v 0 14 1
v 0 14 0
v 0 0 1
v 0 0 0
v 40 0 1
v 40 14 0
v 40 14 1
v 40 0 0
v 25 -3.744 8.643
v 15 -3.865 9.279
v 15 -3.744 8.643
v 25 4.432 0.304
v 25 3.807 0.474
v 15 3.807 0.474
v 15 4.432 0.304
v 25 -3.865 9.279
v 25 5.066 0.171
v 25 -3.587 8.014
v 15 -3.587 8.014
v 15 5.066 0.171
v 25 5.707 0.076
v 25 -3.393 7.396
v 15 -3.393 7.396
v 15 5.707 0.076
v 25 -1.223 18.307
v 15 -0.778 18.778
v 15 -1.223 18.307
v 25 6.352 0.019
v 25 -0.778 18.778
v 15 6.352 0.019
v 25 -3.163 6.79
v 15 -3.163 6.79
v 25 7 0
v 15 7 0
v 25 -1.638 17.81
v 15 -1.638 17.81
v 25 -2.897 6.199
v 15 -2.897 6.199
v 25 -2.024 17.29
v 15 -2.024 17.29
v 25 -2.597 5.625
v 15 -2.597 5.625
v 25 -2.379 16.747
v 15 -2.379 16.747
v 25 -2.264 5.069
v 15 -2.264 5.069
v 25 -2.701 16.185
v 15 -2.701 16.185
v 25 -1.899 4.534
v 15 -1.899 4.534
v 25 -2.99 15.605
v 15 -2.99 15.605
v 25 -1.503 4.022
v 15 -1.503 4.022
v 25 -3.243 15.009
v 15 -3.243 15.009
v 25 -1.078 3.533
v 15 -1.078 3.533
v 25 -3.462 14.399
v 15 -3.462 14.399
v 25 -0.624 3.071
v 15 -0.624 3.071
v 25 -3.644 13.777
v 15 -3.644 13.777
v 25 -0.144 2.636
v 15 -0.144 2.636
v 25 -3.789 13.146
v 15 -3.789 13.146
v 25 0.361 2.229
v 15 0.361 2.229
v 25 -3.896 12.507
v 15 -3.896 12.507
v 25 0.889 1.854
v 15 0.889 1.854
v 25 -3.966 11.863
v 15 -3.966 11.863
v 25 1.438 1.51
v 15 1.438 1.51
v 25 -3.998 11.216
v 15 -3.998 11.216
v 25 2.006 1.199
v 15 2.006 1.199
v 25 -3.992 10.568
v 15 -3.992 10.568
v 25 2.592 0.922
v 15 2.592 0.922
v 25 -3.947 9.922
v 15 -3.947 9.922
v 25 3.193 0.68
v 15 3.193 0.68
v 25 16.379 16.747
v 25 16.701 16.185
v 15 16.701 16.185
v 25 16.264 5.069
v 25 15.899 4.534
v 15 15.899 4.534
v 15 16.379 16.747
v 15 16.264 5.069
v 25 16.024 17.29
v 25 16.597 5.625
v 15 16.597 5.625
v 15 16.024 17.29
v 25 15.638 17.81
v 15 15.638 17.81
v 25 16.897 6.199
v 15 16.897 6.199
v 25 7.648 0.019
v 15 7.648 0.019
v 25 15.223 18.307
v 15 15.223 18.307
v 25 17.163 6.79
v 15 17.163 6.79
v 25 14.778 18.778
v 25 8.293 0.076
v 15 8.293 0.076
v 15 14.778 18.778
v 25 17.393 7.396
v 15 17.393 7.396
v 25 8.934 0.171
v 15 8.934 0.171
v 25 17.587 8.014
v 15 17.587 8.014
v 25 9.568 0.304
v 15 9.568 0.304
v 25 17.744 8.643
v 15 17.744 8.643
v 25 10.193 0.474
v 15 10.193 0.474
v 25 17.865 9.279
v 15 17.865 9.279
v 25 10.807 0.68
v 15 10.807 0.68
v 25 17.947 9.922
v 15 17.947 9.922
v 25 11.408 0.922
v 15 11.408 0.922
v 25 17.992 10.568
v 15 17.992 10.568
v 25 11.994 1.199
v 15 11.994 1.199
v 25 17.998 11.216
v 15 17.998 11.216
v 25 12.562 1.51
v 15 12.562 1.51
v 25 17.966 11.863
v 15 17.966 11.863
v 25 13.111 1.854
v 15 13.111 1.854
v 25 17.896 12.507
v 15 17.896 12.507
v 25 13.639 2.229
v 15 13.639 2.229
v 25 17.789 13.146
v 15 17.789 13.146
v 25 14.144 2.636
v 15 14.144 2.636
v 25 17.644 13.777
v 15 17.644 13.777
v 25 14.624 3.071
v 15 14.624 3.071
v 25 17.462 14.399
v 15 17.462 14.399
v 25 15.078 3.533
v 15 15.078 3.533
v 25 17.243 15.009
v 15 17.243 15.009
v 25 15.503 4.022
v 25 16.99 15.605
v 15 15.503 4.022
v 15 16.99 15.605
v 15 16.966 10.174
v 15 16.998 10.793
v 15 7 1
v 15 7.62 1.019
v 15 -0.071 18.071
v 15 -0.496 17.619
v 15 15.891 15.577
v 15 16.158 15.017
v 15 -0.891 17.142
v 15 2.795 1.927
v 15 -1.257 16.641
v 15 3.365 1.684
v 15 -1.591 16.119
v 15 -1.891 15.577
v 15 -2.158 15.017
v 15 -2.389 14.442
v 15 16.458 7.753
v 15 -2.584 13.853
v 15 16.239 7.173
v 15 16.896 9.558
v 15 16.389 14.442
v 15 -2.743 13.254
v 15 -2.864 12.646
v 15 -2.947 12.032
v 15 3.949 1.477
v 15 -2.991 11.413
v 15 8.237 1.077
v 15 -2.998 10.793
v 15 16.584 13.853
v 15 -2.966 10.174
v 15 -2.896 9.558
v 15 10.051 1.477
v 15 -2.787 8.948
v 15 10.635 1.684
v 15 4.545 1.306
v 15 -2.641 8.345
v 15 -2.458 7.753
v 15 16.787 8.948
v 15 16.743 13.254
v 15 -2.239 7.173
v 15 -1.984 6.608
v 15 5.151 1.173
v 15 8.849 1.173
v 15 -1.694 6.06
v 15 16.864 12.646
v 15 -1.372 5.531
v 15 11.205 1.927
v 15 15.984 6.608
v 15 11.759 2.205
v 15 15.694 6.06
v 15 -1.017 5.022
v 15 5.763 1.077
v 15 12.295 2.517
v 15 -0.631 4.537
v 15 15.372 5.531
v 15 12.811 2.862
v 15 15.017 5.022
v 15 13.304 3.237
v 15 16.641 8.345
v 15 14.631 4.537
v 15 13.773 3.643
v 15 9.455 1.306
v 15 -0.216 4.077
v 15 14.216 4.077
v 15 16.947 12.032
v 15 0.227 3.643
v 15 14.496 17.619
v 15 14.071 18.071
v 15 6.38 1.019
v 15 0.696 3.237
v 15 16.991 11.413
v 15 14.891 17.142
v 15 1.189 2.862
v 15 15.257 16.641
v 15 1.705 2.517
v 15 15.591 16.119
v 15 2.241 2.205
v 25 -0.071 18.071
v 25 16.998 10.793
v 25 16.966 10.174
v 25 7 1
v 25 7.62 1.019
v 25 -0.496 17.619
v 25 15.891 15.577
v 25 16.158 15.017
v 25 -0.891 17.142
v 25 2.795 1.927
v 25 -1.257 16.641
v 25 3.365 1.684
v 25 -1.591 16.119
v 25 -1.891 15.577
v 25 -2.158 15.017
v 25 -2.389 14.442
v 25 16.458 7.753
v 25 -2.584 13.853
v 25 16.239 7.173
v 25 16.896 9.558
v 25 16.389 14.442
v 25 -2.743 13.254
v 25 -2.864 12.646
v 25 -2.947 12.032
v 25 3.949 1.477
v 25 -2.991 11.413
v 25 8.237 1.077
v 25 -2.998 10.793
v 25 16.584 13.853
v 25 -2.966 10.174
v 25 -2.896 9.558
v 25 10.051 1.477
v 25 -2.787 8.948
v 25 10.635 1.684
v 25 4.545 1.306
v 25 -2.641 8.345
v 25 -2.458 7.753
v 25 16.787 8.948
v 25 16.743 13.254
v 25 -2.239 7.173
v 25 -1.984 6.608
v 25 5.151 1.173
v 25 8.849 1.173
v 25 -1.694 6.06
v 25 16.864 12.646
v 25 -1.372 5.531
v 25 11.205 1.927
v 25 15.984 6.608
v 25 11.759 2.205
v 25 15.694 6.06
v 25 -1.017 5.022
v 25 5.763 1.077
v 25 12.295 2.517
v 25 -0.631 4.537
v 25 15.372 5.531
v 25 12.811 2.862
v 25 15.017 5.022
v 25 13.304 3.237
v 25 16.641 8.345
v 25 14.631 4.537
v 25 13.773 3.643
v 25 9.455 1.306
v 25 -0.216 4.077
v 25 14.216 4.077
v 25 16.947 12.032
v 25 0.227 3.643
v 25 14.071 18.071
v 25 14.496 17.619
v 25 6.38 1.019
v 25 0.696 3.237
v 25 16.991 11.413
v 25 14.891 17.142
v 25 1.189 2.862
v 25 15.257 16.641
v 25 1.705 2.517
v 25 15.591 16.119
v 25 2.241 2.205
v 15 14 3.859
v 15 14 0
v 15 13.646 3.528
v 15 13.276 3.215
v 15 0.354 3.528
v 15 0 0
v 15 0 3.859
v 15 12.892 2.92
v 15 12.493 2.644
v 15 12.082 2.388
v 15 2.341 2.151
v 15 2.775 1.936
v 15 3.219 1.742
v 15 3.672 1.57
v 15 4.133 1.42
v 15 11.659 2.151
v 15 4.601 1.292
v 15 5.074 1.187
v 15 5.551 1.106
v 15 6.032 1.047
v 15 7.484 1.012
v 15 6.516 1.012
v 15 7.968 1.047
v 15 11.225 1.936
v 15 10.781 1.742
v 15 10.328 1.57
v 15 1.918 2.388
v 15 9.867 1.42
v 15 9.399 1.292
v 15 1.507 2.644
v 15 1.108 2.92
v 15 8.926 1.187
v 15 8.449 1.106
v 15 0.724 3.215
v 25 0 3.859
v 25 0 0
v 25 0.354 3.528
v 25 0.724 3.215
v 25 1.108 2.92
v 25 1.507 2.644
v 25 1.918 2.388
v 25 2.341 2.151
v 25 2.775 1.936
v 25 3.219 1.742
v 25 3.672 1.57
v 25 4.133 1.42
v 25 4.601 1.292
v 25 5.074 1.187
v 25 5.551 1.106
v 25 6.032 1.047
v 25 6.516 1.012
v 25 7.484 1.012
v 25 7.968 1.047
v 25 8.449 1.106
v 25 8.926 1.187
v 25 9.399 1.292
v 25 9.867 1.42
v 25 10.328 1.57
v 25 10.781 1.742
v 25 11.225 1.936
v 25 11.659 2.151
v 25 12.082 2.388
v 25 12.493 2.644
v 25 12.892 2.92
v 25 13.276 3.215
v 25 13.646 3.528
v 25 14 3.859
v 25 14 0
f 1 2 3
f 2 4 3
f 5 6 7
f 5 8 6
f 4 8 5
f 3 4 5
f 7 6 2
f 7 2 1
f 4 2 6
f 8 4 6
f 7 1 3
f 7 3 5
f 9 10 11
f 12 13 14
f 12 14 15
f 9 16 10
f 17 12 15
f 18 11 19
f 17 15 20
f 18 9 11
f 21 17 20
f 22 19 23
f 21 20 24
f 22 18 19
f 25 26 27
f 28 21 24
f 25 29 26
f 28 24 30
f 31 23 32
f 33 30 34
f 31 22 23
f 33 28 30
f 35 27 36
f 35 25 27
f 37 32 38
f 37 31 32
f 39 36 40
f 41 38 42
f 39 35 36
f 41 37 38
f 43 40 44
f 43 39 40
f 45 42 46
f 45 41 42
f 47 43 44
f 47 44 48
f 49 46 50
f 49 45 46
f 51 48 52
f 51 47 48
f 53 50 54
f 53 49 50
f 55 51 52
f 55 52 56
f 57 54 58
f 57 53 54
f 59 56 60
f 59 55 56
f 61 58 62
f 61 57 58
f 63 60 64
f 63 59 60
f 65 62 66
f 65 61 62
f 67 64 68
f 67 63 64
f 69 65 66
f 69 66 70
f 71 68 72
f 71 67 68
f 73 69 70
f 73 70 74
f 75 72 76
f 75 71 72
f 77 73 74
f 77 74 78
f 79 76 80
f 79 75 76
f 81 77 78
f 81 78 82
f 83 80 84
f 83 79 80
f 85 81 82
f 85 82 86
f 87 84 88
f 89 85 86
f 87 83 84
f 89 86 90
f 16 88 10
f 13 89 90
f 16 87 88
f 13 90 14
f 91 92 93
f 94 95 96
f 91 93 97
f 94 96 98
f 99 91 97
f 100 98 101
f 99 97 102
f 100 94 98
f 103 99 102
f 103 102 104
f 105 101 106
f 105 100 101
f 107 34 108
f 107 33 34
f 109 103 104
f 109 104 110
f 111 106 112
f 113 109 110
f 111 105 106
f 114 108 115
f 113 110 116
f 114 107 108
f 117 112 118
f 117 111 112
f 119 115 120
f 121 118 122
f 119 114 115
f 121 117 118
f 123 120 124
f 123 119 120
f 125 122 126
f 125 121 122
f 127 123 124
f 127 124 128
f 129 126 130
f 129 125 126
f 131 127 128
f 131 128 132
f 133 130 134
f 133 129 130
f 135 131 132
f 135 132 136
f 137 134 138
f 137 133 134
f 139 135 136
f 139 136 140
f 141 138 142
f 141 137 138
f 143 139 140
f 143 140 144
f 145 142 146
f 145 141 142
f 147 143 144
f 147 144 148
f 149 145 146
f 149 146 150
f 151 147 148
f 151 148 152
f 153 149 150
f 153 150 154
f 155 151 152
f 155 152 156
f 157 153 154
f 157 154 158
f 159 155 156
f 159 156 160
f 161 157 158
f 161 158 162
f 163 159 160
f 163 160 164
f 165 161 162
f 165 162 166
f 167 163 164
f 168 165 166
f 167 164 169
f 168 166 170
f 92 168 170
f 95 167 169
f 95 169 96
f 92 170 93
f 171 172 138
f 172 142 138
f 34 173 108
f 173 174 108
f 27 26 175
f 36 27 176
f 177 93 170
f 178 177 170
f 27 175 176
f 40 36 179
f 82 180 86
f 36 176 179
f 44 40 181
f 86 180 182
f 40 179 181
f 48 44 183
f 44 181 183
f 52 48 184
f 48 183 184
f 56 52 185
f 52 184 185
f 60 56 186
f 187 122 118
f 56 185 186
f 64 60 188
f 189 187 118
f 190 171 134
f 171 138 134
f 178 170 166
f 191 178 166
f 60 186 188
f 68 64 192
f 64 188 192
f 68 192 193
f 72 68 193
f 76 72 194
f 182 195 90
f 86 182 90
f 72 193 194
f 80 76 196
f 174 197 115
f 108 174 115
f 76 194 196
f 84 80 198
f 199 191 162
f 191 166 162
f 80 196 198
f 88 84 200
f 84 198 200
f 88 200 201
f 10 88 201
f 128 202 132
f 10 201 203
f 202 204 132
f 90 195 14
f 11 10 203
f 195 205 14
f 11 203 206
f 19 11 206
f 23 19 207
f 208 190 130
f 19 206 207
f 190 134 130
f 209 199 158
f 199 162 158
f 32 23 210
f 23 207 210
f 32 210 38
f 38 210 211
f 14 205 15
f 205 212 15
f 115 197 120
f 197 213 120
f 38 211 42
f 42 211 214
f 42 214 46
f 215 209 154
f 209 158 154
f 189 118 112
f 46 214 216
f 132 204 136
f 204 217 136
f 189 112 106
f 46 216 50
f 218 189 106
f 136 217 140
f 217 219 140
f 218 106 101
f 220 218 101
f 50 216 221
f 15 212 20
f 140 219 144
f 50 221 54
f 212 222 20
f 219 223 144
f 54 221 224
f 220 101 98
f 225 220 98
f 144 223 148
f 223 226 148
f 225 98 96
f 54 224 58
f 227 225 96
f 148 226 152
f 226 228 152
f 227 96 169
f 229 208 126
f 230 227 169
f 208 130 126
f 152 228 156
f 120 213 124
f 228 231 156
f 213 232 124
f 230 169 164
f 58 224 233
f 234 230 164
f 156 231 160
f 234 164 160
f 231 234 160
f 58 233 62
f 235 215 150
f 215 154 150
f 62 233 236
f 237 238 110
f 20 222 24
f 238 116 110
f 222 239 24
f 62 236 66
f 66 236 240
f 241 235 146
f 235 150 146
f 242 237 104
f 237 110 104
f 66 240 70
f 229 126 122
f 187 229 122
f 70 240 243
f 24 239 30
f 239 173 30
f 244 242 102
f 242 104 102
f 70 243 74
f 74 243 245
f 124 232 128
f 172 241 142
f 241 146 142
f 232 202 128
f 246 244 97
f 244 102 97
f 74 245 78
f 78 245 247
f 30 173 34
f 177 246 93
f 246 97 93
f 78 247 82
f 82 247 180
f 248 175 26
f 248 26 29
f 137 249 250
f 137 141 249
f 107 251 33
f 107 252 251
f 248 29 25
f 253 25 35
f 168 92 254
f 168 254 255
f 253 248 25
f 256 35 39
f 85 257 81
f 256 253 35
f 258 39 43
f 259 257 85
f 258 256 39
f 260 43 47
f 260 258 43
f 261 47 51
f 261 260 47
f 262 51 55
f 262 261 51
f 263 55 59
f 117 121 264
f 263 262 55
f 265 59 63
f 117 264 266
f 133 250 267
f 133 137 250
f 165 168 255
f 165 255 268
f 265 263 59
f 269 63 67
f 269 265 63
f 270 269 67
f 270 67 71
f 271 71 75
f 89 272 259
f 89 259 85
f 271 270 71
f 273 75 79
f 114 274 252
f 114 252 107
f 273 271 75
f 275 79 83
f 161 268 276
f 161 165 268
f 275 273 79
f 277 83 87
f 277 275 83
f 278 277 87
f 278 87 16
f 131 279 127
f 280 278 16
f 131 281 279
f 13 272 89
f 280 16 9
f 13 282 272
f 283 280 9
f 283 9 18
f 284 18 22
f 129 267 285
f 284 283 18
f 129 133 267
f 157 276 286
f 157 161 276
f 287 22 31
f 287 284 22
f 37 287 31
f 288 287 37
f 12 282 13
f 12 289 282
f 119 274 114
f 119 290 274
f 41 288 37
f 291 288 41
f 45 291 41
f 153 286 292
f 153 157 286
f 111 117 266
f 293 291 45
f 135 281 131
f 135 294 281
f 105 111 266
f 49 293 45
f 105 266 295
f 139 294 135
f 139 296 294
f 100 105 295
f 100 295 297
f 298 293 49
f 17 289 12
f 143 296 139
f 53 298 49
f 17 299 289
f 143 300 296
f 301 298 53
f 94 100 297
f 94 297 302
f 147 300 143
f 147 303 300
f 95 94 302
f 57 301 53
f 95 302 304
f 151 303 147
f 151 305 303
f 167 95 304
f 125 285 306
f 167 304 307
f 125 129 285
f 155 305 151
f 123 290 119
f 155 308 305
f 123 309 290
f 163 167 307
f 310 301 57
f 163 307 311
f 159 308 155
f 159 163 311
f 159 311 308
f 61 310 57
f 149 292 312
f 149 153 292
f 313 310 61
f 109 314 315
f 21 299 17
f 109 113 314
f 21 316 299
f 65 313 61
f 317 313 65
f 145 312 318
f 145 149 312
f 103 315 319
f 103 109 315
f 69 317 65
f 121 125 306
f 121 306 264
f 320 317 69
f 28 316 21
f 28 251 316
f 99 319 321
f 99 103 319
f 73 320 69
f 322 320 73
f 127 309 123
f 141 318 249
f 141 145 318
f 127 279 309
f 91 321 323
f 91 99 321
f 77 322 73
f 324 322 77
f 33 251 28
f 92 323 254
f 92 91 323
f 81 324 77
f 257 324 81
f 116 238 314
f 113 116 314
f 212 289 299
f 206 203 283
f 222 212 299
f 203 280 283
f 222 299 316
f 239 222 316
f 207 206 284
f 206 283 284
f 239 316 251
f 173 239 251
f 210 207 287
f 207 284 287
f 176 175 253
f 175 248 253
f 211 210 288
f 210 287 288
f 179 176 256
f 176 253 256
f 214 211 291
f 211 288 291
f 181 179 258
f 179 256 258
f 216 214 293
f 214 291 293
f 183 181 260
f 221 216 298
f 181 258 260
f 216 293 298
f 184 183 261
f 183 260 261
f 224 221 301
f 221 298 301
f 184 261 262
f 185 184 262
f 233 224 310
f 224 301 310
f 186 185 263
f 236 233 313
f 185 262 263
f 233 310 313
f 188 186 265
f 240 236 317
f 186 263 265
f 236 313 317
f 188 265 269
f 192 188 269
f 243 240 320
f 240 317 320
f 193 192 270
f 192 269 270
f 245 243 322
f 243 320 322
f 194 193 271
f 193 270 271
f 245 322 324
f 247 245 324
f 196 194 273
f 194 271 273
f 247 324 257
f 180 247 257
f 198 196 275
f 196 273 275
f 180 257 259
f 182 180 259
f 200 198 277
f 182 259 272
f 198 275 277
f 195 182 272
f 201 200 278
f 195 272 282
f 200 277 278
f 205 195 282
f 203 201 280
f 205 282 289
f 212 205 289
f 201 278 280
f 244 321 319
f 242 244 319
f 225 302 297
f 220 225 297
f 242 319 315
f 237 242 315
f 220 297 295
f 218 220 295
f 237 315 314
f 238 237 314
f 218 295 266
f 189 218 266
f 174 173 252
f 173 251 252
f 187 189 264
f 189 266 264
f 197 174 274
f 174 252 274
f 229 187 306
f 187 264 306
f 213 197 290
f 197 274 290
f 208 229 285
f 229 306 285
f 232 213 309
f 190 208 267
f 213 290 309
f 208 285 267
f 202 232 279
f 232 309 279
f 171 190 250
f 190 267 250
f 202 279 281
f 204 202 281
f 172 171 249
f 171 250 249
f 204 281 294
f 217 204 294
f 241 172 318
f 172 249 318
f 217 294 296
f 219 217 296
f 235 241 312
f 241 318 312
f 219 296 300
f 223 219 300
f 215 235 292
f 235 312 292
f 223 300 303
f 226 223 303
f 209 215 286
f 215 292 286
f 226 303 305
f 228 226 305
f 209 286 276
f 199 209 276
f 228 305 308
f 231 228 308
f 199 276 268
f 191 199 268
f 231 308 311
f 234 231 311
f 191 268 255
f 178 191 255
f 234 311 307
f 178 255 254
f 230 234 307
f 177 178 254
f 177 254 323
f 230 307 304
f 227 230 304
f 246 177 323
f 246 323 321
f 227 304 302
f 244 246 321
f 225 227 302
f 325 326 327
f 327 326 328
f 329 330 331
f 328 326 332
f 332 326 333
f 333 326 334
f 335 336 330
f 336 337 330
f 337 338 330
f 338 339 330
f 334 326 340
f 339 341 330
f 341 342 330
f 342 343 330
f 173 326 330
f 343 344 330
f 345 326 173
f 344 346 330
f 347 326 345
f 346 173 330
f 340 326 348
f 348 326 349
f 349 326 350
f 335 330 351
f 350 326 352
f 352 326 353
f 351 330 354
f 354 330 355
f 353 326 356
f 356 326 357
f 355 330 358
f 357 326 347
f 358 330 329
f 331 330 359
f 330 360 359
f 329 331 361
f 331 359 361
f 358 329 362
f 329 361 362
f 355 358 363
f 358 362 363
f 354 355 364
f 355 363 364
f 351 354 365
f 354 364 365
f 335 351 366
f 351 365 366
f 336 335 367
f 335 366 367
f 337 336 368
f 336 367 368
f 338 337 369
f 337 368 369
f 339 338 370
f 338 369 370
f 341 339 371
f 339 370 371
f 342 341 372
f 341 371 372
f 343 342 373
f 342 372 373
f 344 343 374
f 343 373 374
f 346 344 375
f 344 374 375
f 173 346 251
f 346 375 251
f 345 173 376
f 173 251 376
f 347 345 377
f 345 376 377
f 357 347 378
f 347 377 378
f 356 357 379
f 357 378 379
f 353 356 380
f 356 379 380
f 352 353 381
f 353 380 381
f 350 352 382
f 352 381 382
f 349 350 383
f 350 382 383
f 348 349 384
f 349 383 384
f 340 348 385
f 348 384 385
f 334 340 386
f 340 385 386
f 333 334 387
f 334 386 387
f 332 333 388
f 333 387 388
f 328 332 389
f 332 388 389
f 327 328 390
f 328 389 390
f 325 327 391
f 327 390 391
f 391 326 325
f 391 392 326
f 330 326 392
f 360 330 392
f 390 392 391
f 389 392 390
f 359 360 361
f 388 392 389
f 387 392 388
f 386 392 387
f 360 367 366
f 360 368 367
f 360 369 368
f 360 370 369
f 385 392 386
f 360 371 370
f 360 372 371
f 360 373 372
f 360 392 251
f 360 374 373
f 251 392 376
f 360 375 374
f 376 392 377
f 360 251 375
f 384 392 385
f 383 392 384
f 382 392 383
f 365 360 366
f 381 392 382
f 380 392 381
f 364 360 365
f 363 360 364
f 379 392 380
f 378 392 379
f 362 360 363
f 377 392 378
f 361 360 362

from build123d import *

# Parameters (mm, degrees)
BOX_W                   = 40
BOX_H                   = 14
BOX_DEPTH               = 1
CYLINDER001_R           = 10
CYLINDER001_DEPTH       = 10
CYLINDER001_PITCH_ANGLE = 90
BOX001_W                = 10
BOX001_H                = 14
BOX001_DEPTH            = 4
BOX002_W                = 10
BOX002_H                = 20
BOX002_DEPTH            = 10
CHAMFER_SIZE            = 9
CYLINDER_R              = 11
CYLINDER_DEPTH          = 10
CYLINDER_PITCH_ANGLE    = 90


with BuildPart() as cube:
    # Box → Box (new body)
    with BuildSketch(Plane.XY):
        with Locations((20, 7)):
            Rectangle(BOX_W, BOX_H)
    extrude(amount=BOX_DEPTH)


with BuildPart() as cylinder001:
    # Cylinder001 → Cylinder001 (new body)
    with BuildSketch(Plane.XY):
        Circle(CYLINDER001_R)
    extrude(amount=CYLINDER001_DEPTH)


with BuildPart() as cylinder001_1:
    # Cylinder001 pitch: moved
    add(cylinder001.part.rotate(Axis((0, 0, 0), (0, 1, 0)), CYLINDER001_PITCH_ANGLE))


with BuildPart() as cylinder001_2:
    # Cylinder001 placement: moved
    add(cylinder001_1.part.moved(Location((15, 7, 11))))


with BuildPart() as cut001:
    # Box001 → Box001 (new body)
    with BuildSketch(Plane(origin=(15, 0, 0), x_dir=(1, 0, 0), z_dir=(0, 0, 1))):
        with Locations((5, 7)):
            Rectangle(BOX001_W, BOX001_H)
    extrude(amount=BOX001_DEPTH)

    # Cut001: cut Cylinder001
    add(cylinder001_2.part, mode=Mode.SUBTRACT)


with BuildPart() as chamfer_body:
    # Box002 → Box002 (new body)
    with BuildSketch(Plane(origin=(15, -3, 20), x_dir=(1, 0, 0), z_dir=(0, 0, 1))):
        with Locations((5, 10)):
            Rectangle(BOX002_W, BOX002_H)
    extrude(amount=BOX002_DEPTH)

    # Chamfer
    chamfer_edges = [chamfer_body.edges().sort_by_distance(p)[0] for p in [
        (20, -3, 20),
        (20, 17, 20),
    ]]
    chamfer(chamfer_edges, length=CHAMFER_SIZE)


with BuildPart() as chamfer_body_1:
    # Chamfer placement: moved
    add(chamfer_body.part.moved(Location((0, 0, -8))))


with BuildPart() as cut002:
    # Cylinder → Cylinder (new body)
    with BuildSketch(Plane.XY):
        Circle(CYLINDER_R)
    extrude(amount=CYLINDER_DEPTH)


with BuildPart() as cut002_1:
    # Cylinder pitch: moved
    add(cut002.part.rotate(Axis((0, 0, 0), (0, 1, 0)), CYLINDER_PITCH_ANGLE))


with BuildPart() as cut002_2:
    # Cylinder placement: moved
    add(cut002_1.part.moved(Location((15, 7, 11))))

    # Cut: cut Cylinder001
    add(cylinder001_2.part, mode=Mode.SUBTRACT)

    # Cut002: cut Chamfer body
    add(chamfer_body_1.part, mode=Mode.SUBTRACT)


solid = Compound([cube.part, cut001.part, cut002_2.part])
